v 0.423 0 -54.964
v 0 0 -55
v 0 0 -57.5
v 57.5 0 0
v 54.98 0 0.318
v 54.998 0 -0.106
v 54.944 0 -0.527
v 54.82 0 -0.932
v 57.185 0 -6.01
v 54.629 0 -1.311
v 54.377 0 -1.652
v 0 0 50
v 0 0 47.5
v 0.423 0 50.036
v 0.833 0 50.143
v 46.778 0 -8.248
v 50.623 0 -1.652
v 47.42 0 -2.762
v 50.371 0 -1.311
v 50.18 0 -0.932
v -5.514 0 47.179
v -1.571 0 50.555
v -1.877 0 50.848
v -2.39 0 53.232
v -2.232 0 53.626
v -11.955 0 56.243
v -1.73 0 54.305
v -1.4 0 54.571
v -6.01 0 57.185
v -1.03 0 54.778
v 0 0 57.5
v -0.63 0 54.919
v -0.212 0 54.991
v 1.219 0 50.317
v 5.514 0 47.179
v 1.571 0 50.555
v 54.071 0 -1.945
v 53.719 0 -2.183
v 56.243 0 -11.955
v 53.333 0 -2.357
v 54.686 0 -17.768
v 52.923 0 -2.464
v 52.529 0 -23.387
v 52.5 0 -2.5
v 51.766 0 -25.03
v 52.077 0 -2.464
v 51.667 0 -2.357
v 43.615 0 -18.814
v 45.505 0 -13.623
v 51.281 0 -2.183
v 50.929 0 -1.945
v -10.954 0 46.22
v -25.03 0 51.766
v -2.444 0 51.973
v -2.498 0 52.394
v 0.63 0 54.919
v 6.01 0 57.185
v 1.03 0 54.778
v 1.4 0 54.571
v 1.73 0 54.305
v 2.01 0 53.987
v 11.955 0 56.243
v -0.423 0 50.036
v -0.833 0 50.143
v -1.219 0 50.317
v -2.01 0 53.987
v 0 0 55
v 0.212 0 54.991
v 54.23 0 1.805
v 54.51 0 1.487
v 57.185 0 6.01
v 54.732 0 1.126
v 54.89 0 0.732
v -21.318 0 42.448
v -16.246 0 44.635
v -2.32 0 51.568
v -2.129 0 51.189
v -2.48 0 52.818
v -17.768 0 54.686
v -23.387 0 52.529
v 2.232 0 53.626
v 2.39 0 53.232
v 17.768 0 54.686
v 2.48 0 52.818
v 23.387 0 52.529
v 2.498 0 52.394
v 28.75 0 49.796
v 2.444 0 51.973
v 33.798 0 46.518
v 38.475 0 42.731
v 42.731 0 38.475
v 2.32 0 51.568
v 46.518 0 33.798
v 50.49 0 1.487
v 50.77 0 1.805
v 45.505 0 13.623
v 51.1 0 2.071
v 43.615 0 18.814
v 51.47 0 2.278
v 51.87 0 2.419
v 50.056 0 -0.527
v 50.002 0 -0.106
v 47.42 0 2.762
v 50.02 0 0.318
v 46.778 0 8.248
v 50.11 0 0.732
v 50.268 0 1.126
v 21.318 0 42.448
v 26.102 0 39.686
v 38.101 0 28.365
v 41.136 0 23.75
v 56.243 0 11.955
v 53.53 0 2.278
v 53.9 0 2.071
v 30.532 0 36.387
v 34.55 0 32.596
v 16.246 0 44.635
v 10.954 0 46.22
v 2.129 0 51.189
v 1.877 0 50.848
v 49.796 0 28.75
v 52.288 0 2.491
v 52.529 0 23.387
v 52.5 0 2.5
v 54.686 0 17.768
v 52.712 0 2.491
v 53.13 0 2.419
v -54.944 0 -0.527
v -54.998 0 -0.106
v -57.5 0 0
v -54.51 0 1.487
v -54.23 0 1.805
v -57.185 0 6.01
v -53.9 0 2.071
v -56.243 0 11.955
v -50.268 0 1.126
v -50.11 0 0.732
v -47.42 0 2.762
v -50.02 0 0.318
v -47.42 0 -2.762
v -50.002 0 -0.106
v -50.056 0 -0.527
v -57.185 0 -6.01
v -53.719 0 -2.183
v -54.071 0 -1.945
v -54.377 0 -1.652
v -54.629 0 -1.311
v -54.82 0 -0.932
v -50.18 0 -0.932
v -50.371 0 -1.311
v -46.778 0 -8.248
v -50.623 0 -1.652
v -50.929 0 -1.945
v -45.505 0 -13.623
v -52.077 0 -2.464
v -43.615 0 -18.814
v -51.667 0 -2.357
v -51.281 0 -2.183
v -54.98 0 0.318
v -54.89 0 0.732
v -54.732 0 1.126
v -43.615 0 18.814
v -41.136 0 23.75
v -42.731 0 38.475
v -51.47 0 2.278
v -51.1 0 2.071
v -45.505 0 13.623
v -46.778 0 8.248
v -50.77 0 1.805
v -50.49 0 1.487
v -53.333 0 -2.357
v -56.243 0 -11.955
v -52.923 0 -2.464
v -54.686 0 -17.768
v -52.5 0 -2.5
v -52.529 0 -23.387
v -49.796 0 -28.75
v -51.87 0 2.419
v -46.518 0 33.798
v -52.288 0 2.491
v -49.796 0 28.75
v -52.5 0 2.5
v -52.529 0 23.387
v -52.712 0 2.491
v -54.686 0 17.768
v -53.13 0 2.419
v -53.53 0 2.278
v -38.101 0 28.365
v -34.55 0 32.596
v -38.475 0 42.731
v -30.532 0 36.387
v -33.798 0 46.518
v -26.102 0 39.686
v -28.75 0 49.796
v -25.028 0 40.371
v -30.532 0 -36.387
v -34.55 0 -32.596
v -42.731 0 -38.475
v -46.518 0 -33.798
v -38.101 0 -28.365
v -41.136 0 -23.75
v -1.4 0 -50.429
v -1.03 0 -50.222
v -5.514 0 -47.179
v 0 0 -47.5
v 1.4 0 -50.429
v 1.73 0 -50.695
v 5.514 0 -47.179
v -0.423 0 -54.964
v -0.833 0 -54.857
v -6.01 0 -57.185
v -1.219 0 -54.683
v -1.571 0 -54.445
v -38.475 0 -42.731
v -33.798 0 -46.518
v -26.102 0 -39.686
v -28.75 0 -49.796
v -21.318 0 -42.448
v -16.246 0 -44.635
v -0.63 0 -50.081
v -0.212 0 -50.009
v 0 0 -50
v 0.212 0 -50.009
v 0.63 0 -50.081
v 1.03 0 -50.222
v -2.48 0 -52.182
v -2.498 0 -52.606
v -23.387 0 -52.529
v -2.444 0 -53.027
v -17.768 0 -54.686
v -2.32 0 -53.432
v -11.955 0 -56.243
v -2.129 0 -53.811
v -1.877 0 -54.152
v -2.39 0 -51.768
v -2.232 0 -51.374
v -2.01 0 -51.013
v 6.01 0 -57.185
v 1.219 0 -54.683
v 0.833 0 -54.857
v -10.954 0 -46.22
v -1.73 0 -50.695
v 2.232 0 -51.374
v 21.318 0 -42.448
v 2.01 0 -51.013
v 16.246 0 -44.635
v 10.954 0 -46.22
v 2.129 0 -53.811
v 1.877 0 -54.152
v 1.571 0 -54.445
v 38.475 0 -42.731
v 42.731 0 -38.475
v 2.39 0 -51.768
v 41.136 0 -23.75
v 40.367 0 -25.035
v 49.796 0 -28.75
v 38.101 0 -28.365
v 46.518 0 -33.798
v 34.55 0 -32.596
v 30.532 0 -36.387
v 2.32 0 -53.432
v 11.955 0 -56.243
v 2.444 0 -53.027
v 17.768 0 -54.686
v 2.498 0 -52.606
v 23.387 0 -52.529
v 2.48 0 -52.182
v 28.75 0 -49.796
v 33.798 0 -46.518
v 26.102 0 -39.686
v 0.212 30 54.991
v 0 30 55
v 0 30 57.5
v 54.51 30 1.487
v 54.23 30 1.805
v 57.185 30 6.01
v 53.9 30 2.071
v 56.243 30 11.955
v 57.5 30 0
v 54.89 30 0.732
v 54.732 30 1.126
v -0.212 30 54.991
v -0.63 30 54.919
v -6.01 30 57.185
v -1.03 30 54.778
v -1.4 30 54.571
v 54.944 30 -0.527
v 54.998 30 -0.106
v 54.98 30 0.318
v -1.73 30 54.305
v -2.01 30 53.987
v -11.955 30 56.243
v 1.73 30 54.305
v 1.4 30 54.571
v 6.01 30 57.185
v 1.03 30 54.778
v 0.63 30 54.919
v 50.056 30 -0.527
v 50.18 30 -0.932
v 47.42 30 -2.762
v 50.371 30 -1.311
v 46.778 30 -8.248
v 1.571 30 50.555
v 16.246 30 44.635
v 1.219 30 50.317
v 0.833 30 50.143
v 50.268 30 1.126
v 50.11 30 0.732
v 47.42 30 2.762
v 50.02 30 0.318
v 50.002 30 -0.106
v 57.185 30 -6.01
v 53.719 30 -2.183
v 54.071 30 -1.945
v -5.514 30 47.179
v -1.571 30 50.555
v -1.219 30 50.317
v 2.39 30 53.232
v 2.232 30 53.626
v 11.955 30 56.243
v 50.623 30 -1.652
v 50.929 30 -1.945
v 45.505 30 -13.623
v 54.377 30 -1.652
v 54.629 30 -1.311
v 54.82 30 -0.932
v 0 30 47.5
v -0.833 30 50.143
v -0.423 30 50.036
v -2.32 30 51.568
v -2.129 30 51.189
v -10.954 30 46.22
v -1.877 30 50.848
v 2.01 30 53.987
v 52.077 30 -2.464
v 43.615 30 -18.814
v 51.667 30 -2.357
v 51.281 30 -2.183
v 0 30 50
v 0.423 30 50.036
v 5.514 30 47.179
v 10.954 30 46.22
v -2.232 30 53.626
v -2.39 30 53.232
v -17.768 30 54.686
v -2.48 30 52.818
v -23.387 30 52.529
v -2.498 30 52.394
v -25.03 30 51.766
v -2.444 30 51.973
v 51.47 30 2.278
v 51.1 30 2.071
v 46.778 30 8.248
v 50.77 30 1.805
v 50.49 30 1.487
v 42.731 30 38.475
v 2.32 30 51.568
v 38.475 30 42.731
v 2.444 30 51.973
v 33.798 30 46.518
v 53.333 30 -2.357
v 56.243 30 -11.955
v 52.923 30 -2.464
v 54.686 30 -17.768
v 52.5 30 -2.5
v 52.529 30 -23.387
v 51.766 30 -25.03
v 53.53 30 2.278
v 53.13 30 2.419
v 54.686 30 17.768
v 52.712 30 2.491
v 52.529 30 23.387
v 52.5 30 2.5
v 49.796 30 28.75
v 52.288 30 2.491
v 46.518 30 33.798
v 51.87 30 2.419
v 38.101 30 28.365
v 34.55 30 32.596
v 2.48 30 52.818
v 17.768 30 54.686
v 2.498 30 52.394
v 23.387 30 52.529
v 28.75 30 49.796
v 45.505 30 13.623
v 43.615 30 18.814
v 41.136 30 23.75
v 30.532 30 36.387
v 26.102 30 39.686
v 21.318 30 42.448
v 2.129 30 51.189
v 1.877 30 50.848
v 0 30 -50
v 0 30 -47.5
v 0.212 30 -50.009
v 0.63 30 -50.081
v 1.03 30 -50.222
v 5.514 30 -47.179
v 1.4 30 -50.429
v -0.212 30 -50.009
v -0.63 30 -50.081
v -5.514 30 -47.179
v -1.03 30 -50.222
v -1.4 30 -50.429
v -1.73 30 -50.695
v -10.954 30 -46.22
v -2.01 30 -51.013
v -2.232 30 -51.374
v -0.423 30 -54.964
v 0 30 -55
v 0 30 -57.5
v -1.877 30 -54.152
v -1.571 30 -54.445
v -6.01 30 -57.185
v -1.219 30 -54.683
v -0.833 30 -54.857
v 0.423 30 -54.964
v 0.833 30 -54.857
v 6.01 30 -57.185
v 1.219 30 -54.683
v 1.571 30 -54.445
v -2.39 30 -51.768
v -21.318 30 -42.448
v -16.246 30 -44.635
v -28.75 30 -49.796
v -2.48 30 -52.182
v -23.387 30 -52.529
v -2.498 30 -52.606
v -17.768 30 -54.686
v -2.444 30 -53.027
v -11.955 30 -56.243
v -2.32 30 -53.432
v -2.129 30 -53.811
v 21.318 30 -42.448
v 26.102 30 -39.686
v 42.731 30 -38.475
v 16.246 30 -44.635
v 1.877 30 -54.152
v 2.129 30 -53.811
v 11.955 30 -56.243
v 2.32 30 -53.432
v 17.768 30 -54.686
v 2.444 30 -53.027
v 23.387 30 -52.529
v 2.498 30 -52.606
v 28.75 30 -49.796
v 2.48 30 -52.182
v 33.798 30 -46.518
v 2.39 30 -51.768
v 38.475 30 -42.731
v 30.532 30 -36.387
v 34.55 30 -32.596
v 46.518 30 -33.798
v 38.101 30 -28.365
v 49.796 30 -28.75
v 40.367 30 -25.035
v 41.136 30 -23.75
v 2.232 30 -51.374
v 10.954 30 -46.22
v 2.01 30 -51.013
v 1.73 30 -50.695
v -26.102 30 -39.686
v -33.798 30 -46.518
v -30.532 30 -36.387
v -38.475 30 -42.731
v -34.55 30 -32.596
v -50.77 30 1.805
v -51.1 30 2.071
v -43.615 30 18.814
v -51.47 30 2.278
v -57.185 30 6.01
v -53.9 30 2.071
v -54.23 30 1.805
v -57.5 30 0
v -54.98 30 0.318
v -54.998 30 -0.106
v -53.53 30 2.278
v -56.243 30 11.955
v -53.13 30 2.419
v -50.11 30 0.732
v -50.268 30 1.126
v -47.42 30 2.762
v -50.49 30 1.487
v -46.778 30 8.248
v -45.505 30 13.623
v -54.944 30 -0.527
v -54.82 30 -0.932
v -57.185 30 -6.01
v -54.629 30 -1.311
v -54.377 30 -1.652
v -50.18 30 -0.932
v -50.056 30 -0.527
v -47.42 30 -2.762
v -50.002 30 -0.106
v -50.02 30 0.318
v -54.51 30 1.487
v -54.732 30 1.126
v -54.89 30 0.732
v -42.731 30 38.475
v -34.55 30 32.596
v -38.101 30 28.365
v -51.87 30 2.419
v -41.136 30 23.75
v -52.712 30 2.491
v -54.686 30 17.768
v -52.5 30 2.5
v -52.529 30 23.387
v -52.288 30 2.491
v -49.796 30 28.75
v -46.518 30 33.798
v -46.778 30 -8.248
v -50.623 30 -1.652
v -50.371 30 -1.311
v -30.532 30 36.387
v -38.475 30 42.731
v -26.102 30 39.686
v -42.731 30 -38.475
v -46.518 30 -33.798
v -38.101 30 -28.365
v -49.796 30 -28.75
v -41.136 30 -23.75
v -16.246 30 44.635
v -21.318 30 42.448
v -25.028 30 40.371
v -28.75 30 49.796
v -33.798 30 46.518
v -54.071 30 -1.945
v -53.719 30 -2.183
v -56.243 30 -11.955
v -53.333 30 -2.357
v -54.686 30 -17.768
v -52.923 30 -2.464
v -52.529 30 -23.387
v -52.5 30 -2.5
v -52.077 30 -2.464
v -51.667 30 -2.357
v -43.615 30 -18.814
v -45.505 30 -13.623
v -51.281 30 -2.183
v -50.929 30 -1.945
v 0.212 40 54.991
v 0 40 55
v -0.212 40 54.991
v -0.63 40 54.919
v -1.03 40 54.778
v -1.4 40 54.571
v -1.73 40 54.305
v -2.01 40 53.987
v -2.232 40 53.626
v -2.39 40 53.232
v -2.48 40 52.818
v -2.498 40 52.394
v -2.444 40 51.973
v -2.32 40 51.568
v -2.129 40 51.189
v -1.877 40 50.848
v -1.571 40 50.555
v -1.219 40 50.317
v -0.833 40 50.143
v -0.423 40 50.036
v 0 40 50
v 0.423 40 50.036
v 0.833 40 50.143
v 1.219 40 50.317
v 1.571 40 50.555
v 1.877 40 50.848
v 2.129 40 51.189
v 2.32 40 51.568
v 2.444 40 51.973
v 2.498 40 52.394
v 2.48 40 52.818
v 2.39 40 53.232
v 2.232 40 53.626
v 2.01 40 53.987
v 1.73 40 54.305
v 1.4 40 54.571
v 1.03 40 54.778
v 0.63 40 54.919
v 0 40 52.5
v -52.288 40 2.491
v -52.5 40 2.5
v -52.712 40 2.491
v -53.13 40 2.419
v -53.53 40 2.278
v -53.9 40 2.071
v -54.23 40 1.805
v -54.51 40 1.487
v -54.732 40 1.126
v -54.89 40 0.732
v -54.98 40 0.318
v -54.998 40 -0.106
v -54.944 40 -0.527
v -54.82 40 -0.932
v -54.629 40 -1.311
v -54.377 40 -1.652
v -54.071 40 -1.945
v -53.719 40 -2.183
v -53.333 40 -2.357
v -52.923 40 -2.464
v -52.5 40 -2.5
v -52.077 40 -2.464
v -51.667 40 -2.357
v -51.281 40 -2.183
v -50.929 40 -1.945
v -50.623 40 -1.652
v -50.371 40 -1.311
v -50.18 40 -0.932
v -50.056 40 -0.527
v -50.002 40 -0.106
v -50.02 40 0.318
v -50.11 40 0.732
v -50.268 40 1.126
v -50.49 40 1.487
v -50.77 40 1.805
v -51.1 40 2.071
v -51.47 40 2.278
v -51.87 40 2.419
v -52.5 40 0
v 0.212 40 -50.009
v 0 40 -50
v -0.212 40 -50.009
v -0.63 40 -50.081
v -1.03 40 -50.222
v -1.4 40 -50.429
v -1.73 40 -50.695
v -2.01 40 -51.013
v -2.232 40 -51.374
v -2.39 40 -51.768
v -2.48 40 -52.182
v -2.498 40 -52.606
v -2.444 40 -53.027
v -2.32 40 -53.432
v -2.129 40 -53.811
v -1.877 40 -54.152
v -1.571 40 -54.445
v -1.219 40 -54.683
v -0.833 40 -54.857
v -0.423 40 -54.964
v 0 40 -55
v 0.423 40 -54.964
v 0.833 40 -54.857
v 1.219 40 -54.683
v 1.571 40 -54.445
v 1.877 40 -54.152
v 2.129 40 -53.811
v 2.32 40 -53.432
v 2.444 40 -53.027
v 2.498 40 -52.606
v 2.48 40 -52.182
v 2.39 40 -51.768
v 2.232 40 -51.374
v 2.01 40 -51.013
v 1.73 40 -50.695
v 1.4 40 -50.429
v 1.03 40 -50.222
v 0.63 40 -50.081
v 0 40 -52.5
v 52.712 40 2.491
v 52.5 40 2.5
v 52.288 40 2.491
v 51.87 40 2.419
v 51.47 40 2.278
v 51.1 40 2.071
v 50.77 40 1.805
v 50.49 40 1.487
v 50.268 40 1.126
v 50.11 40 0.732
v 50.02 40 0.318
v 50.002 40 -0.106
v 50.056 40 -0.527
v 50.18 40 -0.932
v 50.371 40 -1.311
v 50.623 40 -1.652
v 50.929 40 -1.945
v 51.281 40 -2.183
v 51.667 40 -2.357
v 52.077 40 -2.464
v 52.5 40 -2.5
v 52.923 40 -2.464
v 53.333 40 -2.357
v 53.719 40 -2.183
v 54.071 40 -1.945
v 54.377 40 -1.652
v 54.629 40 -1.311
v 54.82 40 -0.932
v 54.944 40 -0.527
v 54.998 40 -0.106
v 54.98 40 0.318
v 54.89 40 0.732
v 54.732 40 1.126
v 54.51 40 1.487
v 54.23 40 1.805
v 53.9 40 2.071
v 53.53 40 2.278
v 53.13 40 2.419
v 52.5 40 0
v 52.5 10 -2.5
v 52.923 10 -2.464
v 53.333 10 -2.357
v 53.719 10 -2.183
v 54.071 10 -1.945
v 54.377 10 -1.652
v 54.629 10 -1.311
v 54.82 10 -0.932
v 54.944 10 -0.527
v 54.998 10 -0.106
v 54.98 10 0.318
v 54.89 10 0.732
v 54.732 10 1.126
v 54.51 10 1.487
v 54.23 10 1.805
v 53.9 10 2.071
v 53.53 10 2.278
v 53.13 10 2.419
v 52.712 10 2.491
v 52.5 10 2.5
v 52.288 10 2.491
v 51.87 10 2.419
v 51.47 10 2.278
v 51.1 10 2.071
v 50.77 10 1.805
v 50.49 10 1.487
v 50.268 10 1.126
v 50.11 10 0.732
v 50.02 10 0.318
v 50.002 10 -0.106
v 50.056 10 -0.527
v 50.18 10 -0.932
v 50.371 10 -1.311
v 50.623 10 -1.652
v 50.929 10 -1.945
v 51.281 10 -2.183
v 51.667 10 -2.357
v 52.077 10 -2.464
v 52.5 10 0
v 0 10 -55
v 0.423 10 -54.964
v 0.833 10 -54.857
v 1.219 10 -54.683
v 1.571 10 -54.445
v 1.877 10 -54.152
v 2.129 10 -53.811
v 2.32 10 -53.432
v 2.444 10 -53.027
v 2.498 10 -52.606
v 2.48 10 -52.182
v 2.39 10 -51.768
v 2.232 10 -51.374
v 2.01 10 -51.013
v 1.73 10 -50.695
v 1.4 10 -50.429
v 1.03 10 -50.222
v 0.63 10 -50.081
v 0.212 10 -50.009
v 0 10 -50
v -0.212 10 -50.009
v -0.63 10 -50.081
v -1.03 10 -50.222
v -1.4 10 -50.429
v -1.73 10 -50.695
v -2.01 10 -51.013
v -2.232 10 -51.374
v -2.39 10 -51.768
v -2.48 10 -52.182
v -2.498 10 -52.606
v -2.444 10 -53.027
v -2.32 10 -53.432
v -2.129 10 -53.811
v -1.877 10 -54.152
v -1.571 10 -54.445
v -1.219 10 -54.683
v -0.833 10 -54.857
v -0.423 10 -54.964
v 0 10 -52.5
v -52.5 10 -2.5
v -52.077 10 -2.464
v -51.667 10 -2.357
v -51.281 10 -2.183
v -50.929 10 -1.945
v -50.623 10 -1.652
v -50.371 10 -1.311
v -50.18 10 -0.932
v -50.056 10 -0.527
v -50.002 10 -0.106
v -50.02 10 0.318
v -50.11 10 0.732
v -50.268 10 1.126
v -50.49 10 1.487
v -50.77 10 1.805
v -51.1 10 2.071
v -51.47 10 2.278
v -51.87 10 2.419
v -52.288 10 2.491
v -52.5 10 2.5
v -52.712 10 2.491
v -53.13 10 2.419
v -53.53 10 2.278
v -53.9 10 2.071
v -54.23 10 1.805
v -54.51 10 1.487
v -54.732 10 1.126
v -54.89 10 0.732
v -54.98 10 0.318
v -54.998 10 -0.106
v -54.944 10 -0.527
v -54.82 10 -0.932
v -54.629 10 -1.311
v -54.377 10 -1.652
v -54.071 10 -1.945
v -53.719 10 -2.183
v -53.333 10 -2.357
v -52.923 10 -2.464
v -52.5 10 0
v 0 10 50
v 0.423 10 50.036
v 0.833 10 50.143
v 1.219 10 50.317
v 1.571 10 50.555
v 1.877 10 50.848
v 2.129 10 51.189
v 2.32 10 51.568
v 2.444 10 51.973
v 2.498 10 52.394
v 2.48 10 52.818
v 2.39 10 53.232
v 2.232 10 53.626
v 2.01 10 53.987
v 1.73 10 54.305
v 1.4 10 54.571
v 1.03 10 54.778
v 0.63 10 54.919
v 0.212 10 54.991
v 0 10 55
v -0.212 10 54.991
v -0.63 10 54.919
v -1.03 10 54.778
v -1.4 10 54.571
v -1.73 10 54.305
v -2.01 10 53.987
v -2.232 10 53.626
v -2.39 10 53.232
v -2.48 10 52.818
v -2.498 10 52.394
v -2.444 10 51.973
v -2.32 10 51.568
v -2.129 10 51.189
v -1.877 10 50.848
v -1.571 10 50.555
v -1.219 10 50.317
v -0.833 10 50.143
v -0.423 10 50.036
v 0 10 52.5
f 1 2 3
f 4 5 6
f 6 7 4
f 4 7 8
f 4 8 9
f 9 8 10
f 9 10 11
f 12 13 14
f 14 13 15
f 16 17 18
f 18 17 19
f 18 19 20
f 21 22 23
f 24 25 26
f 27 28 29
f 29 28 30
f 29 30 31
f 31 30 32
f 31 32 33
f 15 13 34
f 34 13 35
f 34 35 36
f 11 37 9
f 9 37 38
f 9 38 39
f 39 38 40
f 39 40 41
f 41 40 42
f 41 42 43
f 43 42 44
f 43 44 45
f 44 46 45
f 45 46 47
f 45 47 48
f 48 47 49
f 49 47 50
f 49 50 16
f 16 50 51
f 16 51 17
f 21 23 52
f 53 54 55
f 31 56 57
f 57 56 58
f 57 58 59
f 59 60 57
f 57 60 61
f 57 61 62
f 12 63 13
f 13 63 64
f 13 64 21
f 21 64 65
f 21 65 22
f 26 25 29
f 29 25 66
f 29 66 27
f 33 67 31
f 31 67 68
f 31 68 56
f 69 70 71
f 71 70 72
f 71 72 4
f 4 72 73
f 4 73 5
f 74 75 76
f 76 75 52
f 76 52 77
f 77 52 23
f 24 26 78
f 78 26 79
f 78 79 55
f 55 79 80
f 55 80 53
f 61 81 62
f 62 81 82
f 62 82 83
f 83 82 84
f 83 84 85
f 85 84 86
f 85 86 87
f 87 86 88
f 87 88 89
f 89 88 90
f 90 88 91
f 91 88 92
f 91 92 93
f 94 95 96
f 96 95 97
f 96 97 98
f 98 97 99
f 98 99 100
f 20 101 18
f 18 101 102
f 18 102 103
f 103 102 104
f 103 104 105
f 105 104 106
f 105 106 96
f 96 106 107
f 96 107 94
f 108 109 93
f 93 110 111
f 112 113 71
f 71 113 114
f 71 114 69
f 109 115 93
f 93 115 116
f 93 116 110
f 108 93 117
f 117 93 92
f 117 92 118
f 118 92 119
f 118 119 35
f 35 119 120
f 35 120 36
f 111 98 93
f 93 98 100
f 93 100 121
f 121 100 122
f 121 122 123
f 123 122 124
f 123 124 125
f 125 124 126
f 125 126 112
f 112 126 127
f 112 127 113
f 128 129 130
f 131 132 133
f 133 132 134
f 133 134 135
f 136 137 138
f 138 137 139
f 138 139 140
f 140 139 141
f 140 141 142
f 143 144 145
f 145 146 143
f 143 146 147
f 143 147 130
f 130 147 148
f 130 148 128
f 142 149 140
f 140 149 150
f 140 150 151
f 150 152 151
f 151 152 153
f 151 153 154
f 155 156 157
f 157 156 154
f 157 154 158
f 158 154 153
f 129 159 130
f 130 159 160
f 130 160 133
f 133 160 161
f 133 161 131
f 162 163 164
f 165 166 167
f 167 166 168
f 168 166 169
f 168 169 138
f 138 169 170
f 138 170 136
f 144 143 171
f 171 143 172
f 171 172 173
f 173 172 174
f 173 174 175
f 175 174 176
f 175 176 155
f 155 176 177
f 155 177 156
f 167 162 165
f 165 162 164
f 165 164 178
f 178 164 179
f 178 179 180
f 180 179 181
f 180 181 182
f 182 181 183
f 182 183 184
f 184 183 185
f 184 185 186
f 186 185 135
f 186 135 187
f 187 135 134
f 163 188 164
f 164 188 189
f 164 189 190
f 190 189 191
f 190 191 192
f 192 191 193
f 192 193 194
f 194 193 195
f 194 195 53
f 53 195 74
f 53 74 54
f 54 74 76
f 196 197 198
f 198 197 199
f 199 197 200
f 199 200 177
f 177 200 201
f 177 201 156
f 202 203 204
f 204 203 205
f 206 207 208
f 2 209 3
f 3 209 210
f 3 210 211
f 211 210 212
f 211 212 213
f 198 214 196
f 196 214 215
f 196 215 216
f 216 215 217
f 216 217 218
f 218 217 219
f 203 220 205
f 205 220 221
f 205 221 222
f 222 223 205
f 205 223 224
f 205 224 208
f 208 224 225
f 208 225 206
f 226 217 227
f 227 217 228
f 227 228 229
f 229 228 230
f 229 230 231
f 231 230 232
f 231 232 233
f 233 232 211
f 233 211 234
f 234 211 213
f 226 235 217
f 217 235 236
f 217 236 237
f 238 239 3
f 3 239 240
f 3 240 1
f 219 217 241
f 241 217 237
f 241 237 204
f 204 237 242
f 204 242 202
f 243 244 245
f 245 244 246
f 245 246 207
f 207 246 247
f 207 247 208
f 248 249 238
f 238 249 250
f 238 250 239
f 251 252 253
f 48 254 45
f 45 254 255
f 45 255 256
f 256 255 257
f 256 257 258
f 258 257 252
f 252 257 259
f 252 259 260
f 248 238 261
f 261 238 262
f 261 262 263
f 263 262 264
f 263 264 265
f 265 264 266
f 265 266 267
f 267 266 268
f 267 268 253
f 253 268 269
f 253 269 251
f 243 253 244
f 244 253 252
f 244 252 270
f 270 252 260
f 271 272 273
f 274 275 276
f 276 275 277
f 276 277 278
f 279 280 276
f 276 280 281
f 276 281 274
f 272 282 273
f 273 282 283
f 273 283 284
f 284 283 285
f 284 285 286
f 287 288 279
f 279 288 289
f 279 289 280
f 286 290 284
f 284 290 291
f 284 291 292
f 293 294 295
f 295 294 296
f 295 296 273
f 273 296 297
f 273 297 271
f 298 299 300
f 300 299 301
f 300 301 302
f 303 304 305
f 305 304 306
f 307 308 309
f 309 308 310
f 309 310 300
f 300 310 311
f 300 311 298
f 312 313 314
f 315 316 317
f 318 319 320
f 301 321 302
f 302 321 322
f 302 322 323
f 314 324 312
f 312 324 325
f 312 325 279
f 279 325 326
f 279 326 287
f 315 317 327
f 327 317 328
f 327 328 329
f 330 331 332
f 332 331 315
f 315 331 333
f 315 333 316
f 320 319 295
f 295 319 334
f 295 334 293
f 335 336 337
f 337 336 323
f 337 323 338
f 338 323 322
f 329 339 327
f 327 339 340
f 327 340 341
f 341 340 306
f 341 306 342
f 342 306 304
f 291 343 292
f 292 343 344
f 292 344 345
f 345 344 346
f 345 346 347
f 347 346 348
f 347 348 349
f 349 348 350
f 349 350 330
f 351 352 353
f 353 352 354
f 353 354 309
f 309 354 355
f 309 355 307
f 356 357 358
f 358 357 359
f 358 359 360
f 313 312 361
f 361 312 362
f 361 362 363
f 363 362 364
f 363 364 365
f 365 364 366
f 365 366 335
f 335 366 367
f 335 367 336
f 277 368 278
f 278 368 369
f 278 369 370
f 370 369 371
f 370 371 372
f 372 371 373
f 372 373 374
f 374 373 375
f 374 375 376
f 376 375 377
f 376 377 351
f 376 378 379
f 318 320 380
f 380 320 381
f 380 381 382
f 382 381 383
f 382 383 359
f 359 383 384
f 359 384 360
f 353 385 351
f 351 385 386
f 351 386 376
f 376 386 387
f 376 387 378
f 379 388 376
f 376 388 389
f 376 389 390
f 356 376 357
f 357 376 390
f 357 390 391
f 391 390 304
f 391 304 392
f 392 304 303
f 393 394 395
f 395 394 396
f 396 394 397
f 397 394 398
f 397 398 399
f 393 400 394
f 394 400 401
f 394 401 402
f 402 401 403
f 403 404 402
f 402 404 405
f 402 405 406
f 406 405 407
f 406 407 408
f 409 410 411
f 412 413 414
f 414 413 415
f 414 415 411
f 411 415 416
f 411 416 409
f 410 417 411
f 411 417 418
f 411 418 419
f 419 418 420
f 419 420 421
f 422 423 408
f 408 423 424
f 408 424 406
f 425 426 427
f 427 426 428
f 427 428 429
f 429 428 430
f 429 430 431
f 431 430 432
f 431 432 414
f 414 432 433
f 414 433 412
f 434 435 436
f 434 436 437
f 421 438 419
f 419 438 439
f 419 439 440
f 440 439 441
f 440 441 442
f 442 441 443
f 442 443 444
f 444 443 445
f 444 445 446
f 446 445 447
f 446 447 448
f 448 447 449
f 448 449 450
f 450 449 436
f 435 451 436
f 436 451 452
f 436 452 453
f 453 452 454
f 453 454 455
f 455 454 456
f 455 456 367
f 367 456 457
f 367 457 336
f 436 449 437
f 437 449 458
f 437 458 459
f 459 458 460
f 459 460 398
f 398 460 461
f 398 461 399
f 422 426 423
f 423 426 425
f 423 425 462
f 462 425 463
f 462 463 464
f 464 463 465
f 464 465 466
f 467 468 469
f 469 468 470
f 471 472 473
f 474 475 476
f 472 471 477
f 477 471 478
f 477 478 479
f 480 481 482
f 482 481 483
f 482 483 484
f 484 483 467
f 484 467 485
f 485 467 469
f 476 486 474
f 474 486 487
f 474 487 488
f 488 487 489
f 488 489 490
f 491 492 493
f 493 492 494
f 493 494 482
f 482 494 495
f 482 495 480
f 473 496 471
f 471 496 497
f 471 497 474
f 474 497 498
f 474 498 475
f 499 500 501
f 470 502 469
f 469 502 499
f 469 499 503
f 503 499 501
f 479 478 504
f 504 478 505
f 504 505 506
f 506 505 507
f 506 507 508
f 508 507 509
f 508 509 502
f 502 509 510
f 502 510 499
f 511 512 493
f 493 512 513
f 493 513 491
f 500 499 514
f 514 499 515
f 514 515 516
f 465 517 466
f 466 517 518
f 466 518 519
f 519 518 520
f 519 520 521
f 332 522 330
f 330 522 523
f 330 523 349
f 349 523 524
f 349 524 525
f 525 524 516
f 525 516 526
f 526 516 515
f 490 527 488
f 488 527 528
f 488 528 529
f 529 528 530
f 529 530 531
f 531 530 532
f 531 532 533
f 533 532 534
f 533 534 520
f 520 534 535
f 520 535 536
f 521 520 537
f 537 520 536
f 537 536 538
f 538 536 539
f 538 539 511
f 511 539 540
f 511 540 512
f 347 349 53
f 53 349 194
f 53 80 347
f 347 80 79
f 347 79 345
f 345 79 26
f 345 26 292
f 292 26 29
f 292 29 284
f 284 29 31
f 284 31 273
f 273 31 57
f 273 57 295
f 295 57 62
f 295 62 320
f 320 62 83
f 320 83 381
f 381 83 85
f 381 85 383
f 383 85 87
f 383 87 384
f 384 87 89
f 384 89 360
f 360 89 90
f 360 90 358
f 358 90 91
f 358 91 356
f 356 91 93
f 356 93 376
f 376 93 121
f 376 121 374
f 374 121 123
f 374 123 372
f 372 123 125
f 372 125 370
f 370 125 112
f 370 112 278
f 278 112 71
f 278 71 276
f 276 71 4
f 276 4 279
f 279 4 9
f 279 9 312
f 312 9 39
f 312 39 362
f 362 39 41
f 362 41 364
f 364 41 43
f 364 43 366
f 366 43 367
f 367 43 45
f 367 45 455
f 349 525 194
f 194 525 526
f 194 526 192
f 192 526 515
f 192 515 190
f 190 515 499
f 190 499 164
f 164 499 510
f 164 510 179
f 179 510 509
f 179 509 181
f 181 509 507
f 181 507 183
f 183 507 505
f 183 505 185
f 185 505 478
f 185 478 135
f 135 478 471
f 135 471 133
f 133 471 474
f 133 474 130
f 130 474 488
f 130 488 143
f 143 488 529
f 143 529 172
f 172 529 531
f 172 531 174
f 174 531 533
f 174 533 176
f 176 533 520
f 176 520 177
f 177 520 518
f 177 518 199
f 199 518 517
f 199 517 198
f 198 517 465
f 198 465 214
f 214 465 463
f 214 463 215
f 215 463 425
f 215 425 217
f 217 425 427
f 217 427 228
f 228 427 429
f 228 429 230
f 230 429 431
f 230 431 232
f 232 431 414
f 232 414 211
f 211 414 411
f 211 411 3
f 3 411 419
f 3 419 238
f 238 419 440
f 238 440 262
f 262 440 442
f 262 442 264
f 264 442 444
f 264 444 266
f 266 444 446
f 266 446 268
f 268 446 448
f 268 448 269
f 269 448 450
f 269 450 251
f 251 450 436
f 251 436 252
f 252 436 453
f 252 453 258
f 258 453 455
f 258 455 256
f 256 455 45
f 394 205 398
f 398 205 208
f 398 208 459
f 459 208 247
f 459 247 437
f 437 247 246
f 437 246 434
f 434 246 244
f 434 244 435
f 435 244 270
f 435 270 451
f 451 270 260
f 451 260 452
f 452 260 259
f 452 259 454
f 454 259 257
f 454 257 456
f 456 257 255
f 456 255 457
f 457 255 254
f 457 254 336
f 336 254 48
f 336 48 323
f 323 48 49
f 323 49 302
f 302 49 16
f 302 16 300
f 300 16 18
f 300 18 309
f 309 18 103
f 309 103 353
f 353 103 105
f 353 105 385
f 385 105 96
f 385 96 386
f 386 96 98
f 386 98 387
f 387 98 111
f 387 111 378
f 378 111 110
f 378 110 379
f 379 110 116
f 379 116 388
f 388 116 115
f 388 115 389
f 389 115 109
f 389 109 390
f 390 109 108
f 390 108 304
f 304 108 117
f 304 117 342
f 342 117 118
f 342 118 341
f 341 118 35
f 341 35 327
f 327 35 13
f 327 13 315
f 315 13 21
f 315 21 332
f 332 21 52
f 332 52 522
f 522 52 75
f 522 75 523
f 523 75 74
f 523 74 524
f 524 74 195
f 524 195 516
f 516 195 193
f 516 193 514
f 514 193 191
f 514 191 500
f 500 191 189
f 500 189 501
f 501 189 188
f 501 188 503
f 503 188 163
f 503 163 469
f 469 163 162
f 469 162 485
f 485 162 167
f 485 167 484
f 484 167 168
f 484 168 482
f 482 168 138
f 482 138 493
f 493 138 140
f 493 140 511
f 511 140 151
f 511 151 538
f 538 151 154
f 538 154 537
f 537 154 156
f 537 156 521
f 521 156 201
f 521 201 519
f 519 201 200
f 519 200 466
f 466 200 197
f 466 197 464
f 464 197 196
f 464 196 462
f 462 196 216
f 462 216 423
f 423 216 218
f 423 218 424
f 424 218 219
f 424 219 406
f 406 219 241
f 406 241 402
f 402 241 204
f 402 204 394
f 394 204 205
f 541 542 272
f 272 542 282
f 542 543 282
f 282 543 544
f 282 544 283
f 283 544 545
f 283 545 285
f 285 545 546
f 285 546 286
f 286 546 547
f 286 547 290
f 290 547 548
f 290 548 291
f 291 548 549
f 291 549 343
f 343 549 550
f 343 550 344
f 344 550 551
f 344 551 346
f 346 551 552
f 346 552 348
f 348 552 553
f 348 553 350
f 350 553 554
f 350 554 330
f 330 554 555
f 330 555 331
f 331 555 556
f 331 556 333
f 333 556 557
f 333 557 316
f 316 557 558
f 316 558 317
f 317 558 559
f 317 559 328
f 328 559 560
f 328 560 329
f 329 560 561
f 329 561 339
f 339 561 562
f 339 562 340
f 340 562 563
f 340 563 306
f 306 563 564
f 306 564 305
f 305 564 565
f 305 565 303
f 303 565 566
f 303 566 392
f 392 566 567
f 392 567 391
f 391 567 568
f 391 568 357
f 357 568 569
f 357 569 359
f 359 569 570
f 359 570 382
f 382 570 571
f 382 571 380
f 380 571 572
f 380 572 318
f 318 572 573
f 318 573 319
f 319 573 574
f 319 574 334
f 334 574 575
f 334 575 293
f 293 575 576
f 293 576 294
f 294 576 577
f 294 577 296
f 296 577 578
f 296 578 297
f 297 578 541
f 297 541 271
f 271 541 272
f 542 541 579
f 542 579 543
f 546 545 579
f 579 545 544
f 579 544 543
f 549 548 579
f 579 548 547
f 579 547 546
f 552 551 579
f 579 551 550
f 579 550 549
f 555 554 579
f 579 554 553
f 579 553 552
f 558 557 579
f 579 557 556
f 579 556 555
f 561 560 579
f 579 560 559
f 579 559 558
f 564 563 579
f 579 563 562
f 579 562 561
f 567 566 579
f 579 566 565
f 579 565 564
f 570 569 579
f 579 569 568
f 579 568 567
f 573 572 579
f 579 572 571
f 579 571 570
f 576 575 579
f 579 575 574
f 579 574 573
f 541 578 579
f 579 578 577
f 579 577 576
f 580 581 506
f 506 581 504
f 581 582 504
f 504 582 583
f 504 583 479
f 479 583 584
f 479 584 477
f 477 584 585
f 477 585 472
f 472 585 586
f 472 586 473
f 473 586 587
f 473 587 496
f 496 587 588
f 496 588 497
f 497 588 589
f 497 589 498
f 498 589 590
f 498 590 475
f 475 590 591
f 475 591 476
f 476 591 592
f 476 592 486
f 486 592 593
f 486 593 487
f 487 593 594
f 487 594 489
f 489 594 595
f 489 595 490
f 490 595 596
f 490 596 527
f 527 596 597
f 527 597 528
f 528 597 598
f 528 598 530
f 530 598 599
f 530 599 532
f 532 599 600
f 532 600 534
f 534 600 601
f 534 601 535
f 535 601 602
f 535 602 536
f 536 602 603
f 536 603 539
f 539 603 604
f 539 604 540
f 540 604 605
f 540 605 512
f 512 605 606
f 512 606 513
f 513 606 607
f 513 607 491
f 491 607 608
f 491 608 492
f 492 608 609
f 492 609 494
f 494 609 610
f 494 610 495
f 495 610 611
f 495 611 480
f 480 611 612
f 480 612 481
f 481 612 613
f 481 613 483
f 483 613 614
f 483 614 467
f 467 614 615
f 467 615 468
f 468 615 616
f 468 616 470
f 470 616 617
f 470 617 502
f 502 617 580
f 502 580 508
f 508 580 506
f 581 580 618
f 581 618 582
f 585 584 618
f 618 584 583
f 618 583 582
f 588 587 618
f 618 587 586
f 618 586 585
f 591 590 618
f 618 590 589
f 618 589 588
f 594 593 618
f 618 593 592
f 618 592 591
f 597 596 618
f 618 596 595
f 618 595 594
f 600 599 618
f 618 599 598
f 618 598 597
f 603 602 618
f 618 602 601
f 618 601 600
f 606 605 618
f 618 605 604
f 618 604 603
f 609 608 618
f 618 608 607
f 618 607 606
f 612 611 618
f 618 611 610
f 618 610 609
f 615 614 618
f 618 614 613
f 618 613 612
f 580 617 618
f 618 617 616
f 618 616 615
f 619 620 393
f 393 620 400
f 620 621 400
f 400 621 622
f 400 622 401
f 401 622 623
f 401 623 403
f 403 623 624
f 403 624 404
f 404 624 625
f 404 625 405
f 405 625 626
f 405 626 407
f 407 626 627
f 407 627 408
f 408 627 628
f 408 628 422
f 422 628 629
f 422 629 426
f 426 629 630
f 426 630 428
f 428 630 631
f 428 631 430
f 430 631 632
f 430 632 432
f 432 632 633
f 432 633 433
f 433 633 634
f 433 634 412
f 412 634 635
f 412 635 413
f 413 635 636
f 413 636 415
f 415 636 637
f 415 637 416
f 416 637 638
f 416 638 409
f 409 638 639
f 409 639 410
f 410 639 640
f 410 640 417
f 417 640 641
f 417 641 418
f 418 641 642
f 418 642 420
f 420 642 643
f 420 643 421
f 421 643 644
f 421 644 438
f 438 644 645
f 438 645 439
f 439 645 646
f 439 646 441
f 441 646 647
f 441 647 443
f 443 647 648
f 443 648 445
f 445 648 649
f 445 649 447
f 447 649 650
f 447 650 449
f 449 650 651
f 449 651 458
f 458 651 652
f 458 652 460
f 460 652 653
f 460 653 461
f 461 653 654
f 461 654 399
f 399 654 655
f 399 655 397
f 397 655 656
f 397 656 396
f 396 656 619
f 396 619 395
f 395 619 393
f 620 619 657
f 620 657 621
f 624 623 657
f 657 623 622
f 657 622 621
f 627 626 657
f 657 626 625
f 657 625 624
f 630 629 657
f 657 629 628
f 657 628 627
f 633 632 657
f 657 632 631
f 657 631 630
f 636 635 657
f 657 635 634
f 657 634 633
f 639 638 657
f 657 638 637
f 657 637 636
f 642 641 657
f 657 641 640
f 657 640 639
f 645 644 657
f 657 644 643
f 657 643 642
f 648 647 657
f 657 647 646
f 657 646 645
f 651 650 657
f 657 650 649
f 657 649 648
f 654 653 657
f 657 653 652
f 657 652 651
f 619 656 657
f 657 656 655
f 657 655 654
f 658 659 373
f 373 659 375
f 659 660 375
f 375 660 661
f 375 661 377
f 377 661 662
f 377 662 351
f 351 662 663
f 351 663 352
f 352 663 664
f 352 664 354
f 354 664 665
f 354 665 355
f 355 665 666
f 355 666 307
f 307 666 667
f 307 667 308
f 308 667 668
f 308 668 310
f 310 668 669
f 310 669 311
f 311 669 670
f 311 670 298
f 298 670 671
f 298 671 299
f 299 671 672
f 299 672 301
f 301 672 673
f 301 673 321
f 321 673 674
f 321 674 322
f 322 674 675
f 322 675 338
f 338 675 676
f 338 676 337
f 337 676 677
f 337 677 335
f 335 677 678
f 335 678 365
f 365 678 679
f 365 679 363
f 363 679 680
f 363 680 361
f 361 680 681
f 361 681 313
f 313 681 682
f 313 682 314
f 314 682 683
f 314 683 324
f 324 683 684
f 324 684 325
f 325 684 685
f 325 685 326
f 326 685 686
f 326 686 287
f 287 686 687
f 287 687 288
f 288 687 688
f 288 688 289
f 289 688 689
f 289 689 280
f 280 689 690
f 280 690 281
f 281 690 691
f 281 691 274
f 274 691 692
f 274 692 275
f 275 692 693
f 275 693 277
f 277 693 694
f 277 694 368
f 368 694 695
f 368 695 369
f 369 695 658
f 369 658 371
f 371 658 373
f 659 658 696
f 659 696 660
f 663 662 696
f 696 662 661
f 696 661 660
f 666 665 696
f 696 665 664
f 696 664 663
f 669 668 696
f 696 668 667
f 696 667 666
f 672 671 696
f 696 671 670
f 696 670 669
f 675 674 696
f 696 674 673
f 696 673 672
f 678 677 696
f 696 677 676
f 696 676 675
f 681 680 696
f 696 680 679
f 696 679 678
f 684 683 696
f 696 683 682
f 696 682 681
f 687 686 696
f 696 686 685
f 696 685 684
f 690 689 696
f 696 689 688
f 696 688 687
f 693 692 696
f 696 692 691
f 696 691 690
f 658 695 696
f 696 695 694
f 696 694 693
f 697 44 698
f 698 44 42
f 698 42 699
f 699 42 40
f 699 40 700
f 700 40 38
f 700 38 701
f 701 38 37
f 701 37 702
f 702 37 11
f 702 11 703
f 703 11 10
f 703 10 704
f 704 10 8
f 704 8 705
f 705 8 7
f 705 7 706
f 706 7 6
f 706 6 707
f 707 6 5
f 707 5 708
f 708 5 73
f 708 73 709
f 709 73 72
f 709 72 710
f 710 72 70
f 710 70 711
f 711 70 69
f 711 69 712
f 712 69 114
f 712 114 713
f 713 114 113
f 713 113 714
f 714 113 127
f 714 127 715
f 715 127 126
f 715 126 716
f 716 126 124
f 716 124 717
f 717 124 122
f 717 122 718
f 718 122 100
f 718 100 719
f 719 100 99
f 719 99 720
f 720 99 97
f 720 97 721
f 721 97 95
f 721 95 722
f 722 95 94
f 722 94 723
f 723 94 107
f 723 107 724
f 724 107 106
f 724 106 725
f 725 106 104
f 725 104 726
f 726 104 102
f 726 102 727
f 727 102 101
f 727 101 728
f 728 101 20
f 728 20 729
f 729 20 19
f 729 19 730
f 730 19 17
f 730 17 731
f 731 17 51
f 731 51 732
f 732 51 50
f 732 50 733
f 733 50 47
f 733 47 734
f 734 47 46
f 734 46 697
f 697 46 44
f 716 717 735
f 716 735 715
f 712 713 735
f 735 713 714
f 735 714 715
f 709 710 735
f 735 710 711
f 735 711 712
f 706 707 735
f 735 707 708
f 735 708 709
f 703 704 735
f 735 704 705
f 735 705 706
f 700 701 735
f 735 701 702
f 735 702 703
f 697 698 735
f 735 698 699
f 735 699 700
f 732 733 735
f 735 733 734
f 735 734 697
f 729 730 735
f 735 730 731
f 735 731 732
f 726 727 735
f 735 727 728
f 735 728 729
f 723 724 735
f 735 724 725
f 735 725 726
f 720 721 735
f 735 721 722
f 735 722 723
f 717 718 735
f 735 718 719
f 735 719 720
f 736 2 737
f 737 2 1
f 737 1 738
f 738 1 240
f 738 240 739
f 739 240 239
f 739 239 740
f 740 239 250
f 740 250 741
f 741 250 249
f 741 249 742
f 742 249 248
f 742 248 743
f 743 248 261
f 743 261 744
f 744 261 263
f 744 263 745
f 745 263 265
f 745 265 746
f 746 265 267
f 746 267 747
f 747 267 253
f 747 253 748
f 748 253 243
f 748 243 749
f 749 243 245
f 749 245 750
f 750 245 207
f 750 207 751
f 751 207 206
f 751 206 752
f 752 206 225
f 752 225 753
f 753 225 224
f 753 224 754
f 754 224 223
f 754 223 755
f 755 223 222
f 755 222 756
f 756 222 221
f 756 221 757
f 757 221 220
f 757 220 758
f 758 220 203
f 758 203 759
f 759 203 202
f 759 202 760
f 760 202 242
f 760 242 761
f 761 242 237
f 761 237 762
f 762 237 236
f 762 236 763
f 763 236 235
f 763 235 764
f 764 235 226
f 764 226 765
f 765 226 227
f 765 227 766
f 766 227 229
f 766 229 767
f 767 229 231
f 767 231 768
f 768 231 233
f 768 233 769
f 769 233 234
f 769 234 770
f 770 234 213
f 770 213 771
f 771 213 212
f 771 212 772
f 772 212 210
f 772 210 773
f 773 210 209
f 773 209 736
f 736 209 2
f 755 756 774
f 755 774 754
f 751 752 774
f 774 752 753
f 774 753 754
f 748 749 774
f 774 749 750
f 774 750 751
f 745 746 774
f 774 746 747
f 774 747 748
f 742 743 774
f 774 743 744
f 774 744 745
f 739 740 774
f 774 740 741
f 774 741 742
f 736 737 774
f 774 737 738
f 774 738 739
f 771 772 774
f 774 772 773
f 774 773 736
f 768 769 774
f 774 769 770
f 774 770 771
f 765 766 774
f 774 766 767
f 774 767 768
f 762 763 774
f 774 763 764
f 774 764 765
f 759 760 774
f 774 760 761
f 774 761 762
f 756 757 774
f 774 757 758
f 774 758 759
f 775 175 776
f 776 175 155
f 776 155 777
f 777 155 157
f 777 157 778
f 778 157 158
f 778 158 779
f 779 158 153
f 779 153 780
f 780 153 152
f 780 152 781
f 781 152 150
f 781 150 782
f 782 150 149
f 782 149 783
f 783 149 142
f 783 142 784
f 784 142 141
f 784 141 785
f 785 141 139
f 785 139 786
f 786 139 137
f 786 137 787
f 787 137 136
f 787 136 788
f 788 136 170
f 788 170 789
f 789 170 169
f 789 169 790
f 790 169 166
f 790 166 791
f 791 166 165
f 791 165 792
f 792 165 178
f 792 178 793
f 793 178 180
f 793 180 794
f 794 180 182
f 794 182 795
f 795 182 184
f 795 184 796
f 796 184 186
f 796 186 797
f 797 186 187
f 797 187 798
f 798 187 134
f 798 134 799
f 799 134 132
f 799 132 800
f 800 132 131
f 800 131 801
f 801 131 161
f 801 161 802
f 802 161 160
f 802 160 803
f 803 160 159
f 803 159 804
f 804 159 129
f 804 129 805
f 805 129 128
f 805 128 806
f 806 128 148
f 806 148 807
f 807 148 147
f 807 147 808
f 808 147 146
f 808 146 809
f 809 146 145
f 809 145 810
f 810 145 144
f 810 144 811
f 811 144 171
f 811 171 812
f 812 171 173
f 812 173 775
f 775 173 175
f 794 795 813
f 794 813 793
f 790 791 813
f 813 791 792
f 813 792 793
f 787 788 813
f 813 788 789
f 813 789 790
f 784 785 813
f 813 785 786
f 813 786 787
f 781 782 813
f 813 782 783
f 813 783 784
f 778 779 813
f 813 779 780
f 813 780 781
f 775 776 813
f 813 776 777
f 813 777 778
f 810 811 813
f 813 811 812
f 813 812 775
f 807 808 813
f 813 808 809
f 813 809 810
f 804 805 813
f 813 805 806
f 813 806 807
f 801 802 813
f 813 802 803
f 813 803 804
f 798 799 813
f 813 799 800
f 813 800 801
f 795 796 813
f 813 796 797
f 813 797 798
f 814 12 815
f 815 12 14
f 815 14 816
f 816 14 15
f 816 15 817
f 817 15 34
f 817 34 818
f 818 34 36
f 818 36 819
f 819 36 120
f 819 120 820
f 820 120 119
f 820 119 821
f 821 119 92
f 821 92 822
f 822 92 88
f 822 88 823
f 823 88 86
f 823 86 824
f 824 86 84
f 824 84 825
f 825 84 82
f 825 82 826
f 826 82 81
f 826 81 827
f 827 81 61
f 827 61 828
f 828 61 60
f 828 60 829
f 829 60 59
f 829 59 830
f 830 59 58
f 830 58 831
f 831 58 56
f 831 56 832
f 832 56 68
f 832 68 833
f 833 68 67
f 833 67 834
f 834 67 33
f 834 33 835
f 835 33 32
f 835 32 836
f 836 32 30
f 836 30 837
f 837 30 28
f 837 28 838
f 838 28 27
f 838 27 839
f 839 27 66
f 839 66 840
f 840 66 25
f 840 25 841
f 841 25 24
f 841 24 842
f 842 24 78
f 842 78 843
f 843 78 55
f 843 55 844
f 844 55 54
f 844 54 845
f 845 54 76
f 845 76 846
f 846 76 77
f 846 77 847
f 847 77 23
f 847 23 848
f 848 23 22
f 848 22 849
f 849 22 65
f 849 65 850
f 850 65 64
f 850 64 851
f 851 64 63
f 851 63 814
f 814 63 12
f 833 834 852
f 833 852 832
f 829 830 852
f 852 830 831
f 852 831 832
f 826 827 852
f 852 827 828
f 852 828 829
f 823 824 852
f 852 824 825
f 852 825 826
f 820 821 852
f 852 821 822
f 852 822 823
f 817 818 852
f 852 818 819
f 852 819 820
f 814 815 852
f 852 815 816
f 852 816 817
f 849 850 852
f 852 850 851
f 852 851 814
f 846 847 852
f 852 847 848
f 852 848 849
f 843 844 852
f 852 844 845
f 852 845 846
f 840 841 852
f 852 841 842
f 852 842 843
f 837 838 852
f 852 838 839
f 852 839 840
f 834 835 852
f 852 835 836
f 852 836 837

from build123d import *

# Parameters (mm, degrees)
ESQUISSE1_R             = 57.5
ESQUISSE1_R_2           = 47.5
BOSS_EXTRU_1_DEPTH      = 30
ESQUISSE3_R             = 2.5
BOSS_EXTRU_3_DEPTH      = 40
ESQUISSE23_R            = 2.5
ENL_V_MAT_EXTRU_1_DEPTH = 10
ESQUISSE22_R            = 2.5
ENL_V_MAT_EXTRU_2_DEPTH = 10
ESQUISSE20_R            = 2.5
ENL_V_MAT_EXTRU_3_DEPTH = 10


with BuildPart() as part:
    # Esquisse1 → Boss.-Extru.1 (new body)
    with BuildSketch(Plane(origin=(0, 0, 0), x_dir=(1, 0, 0), z_dir=(0, 1, 0))):
        with Locations(Location((0, 0, 0), (0, 0, 270))):
            Circle(ESQUISSE1_R)
        with Locations(Location((0, 0, 0), (0, 0, 270))):
            Circle(ESQUISSE1_R_2, mode=Mode.SUBTRACT)
    extrude(amount=BOSS_EXTRU_1_DEPTH)

    # Esquisse3 → Boss.-Extru.3 (add)
    with BuildSketch(Plane(origin=(0, 0, 0), x_dir=(1, 0, 0), z_dir=(0, 1, 0))):
        with Locations(Location((0, 52.5, 0), (0, 0, 270))):
            Circle(ESQUISSE3_R)
        with Locations(Location((0, -52.5, 0), (0, 0, 270))):
            Circle(ESQUISSE3_R)
        with Locations(Location((-52.5, 0, 0), (0, 0, 270))):
            Circle(ESQUISSE3_R)
        with Locations(Location((52.5, 0, 0), (0, 0, 270))):
            Circle(ESQUISSE3_R)
    extrude(amount=BOSS_EXTRU_3_DEPTH)

    # Esquisse23 → Enlèv. mat.-Extru.1 (cut)
    with BuildSketch(Plane(origin=(0, 0, 0), x_dir=(1, 0, 0), z_dir=(0, 1, 0))):
        with Locations(Location((52.5, 0, 0), (0, 0, 270))):
            Circle(ESQUISSE23_R)
    extrude(amount=ENL_V_MAT_EXTRU_1_DEPTH, mode=Mode.SUBTRACT)

    # Esquisse22 → Enlèv. mat.-Extru.2 (cut)
    with BuildSketch(Plane(origin=(0, 0, 0), x_dir=(1, 0, 0), z_dir=(0, 1, 0))):
        with Locations(Location((0, 52.5, 0), (0, 0, 270))):
            Circle(ESQUISSE22_R)
    extrude(amount=ENL_V_MAT_EXTRU_2_DEPTH, mode=Mode.SUBTRACT)

    # Esquisse20 → Enlèv. mat.-Extru.3 (cut)
    with BuildSketch(Plane(origin=(0, 0, 0), x_dir=(1, 0, 0), z_dir=(0, 1, 0))):
        with Locations(Location((0, -52.5, 0), (0, 0, 270))):
            Circle(ESQUISSE20_R)
        with Locations(Location((-52.5, 0, 0), (0, 0, 270))):
            Circle(ESQUISSE20_R)
        with Locations(Location((0, 52.5, 0), (0, 0, 270))):
            Circle(ESQUISSE20_R)
        with Locations(Location((52.5, 0, 0), (0, 0, 270))):
            Circle(ESQUISSE20_R)
    extrude(amount=ENL_V_MAT_EXTRU_3_DEPTH, mode=Mode.SUBTRACT)


solid = part.part
